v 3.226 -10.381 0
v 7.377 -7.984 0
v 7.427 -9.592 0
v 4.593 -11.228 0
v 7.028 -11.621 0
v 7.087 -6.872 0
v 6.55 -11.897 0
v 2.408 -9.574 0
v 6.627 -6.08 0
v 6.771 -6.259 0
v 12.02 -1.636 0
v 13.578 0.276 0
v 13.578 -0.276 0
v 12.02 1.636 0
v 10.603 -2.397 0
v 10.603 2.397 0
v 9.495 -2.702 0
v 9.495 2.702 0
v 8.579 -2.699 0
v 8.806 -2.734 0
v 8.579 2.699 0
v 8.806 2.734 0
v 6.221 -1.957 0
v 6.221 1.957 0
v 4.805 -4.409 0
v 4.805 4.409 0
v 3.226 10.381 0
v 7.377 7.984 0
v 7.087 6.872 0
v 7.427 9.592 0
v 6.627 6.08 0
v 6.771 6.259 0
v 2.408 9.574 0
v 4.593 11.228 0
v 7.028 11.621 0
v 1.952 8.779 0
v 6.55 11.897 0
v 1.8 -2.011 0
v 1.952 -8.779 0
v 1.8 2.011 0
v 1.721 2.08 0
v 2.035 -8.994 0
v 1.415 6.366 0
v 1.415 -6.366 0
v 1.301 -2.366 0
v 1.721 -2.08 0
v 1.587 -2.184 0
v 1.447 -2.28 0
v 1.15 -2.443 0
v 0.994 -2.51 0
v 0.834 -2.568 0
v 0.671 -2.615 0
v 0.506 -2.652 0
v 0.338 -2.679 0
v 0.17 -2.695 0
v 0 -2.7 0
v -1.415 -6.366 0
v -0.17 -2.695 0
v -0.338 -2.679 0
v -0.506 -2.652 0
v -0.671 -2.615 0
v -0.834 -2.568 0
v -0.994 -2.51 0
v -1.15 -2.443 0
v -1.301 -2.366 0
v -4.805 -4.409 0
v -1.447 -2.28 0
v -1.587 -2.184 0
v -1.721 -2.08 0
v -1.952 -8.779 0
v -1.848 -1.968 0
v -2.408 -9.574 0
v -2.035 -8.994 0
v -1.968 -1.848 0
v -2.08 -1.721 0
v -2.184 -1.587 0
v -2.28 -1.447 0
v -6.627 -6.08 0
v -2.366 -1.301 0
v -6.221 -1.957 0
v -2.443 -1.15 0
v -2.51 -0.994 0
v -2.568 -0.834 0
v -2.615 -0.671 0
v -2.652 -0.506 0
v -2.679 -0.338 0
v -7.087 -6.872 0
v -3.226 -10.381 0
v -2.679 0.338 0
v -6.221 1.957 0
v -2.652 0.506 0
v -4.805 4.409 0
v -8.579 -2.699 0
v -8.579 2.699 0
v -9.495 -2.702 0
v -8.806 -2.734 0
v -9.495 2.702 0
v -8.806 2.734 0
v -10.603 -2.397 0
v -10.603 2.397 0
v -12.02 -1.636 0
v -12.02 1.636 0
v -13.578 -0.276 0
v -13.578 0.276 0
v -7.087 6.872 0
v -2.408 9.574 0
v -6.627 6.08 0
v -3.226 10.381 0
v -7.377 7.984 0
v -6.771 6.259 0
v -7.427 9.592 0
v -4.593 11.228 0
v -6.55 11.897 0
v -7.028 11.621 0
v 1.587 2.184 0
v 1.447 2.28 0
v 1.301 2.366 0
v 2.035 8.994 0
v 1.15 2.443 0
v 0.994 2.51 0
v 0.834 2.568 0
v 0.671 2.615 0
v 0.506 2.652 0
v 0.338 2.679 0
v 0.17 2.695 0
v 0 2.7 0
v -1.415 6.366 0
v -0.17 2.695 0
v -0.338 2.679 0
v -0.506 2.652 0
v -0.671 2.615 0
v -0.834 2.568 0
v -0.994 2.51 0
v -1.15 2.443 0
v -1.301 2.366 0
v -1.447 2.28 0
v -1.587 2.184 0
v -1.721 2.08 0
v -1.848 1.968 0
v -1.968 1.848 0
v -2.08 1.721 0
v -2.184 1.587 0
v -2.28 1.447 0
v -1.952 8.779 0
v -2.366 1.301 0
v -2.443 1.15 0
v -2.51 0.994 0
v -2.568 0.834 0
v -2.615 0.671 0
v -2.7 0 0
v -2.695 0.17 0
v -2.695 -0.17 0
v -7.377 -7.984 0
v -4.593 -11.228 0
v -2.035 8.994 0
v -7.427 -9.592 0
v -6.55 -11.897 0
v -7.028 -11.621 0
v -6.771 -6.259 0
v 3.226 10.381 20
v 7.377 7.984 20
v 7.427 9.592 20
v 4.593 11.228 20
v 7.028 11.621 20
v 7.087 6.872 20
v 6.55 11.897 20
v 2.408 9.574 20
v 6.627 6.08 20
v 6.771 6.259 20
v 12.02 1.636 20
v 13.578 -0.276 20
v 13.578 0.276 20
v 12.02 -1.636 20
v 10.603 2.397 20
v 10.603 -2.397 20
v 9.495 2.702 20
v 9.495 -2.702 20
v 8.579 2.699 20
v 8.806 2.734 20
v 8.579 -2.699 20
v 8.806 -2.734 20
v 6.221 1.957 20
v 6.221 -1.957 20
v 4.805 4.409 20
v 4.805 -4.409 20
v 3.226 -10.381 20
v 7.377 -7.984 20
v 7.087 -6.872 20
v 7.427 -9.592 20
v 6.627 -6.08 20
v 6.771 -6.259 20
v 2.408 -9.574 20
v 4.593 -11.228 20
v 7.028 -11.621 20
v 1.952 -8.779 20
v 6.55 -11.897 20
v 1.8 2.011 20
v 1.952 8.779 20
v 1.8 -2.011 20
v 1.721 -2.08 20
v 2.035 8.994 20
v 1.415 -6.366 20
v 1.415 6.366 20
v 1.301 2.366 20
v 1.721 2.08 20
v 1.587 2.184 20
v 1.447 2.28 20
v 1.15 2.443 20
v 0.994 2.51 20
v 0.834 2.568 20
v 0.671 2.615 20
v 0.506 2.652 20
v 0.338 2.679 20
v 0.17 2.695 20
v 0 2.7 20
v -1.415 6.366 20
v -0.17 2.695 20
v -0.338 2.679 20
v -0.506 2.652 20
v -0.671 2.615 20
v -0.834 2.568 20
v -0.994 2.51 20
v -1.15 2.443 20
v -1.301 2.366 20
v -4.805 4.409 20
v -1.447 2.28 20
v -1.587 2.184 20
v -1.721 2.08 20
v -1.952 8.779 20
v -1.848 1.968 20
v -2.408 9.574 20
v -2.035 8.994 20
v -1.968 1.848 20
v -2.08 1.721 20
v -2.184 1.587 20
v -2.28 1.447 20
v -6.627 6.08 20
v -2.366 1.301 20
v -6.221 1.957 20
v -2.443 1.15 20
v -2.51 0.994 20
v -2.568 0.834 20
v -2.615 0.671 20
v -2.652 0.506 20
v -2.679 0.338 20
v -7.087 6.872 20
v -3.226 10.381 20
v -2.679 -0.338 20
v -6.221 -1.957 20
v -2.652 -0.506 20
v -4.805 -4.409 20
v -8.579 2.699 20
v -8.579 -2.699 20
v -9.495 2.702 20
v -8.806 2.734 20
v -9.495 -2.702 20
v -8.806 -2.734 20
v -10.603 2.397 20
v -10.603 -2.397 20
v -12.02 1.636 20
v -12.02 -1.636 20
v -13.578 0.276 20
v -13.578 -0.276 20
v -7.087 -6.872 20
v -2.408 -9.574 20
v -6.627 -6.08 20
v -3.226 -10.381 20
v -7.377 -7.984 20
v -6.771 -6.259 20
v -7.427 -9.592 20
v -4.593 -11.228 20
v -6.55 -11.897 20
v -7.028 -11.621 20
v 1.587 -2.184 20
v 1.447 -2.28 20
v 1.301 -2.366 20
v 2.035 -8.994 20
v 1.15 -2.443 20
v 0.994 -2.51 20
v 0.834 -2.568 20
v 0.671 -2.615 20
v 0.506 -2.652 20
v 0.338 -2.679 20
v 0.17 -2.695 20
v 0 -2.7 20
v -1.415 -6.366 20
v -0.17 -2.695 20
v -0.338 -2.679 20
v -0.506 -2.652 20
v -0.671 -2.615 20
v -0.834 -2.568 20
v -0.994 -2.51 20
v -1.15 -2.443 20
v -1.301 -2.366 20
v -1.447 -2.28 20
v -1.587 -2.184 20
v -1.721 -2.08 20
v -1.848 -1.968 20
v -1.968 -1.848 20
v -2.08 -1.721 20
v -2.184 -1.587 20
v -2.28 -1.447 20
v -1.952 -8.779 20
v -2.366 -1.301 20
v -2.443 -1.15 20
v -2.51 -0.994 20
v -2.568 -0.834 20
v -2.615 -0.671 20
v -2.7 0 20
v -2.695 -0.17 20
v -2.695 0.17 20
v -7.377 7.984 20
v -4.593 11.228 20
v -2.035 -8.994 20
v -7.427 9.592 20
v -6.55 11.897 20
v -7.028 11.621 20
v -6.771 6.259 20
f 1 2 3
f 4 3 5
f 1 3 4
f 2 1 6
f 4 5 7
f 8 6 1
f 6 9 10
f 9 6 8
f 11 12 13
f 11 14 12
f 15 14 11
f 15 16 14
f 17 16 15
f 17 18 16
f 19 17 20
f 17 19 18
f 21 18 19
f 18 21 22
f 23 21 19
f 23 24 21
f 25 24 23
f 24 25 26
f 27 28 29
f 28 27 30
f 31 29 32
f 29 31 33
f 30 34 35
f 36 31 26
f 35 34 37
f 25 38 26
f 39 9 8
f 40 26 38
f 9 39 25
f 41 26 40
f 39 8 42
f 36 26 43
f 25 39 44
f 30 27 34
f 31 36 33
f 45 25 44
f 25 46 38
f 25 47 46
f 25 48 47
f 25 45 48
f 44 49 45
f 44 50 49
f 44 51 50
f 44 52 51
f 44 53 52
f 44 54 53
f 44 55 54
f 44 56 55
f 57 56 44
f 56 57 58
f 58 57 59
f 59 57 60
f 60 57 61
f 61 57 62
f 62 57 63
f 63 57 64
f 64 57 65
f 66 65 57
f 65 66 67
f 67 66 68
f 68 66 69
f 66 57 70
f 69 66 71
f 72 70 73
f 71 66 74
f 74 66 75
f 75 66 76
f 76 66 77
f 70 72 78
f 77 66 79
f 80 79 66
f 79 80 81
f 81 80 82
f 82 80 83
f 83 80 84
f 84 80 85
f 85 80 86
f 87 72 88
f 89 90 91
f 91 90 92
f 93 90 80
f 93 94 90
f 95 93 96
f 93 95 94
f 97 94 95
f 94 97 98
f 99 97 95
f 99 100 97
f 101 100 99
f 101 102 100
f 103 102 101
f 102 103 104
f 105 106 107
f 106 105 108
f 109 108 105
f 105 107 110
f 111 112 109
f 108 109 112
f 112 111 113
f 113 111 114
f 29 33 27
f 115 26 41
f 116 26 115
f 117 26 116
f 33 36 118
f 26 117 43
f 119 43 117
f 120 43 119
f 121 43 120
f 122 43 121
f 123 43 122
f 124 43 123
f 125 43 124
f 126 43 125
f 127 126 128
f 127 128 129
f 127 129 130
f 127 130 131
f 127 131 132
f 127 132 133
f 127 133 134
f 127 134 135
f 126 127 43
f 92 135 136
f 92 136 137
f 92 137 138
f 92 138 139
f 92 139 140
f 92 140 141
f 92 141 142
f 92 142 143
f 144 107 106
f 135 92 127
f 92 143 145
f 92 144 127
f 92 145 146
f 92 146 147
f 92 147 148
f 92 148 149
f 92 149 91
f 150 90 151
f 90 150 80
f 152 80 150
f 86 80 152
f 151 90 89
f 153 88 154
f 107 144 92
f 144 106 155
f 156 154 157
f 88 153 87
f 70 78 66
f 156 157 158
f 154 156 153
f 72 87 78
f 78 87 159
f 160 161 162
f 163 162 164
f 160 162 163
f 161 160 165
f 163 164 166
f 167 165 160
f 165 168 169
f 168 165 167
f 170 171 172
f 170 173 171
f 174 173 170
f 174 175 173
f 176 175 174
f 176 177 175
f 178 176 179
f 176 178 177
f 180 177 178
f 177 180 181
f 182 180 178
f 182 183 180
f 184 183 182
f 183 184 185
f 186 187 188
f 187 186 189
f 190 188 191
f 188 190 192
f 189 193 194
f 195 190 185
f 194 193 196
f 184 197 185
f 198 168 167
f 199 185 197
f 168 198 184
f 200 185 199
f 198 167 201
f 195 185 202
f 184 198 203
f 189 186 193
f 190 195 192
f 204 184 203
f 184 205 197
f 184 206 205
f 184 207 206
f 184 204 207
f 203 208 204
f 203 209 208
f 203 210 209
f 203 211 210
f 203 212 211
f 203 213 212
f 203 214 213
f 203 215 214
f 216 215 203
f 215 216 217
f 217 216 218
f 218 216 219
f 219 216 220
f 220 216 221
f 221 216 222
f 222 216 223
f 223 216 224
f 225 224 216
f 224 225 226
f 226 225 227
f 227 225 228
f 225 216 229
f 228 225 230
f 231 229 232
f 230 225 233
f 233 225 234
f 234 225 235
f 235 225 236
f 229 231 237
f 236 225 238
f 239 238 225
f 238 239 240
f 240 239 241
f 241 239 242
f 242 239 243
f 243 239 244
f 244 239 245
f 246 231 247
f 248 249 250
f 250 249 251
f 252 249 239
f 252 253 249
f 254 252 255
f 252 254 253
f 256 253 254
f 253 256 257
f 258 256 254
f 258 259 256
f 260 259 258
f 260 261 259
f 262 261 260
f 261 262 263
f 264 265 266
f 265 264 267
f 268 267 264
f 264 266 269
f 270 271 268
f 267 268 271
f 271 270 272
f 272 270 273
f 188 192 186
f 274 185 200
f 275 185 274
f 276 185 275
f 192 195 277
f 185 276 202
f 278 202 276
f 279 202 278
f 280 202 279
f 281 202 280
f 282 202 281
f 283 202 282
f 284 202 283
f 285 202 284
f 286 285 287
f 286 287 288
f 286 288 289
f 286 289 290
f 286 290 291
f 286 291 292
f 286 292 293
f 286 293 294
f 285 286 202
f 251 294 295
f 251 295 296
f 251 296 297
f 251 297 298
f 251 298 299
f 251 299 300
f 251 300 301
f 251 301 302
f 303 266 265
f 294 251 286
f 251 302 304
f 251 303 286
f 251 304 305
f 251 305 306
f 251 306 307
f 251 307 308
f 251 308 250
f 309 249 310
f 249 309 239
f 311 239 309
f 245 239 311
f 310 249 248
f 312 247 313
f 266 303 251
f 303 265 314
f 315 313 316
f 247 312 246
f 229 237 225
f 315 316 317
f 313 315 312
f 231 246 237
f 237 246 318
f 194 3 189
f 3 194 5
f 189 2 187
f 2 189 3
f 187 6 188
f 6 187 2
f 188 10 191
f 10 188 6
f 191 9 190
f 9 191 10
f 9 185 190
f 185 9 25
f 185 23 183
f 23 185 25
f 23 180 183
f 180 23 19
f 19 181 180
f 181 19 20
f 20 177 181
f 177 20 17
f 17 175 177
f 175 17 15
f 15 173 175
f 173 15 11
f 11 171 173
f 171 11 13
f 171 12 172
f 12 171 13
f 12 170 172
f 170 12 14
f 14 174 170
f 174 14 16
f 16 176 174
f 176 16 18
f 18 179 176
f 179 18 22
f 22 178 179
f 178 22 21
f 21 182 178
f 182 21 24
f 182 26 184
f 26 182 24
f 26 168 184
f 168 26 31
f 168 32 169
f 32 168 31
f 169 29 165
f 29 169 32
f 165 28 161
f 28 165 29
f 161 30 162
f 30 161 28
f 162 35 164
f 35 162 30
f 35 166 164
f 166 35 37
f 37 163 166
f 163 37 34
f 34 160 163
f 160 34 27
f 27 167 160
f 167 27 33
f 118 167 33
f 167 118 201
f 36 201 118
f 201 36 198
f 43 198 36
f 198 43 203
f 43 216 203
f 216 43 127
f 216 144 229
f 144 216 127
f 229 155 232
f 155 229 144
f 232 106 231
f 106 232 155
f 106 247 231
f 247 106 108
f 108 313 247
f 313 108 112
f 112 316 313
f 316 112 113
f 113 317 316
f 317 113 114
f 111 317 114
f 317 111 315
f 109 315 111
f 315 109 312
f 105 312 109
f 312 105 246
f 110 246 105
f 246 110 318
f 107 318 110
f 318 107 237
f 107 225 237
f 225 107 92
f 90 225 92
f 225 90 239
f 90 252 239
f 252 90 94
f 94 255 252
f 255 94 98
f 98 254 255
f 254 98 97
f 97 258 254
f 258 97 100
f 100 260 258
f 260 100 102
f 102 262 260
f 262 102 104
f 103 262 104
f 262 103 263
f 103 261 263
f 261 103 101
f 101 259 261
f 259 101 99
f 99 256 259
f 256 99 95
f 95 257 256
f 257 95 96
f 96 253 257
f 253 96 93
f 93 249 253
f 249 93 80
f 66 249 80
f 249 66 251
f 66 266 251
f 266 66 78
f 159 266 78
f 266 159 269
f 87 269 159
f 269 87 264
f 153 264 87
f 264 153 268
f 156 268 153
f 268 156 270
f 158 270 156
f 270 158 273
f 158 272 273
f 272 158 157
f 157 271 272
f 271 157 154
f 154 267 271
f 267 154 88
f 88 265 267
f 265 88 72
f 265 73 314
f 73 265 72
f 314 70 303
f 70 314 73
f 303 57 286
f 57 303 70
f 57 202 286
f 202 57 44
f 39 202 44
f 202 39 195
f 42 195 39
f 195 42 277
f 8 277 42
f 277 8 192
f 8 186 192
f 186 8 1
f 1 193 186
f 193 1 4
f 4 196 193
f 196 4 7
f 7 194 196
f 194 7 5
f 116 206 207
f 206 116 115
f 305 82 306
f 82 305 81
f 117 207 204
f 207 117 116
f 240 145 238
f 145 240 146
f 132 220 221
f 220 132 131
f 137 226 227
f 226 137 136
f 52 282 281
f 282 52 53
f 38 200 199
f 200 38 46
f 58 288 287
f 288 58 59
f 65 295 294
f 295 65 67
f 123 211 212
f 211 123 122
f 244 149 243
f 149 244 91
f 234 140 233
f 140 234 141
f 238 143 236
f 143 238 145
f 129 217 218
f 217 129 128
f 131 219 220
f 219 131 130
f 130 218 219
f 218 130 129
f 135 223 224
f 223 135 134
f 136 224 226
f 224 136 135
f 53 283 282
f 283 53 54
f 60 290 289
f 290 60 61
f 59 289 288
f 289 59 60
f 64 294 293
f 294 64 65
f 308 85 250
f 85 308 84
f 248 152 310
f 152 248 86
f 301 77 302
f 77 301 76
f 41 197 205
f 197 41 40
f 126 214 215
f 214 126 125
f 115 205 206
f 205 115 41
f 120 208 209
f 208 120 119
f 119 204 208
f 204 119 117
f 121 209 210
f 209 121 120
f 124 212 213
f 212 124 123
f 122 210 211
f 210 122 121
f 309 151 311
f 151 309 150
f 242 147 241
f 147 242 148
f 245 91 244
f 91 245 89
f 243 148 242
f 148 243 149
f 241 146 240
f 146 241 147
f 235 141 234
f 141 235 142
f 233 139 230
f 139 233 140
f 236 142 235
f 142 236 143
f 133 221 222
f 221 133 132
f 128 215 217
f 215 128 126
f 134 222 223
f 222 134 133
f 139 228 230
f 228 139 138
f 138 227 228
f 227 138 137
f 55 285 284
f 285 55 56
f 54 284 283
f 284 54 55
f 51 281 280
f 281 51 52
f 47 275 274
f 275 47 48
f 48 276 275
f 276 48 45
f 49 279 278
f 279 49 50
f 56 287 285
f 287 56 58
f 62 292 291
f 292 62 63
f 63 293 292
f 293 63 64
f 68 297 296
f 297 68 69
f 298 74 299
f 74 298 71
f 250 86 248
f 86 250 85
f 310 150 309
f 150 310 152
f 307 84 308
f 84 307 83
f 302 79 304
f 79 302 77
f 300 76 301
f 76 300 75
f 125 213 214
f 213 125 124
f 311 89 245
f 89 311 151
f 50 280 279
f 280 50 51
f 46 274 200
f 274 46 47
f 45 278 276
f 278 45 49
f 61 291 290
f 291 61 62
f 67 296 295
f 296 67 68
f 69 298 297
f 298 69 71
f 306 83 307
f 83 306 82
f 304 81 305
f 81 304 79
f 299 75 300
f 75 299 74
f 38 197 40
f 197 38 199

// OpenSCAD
use <controller.scad>

include <rail.scad>

tol = 0.2;

module shaft() {
    translate([3 - tol, 0, RingThickness/2]) {
        cube([2, 5, RingThickness], center=true);
    };
difference() {gear (circular_pitch=p,
              gear_thickness = RingThickness,
		      rim_thickness = RingThickness,
		      hub_thickness = RingThickness,
		      circles=0,
		      number_of_teeth = DriverNumberOfTeeth,
		      rim_width = 0);  
    cylinder(RingThickness, 5/2 + tol , 5/2 + tol, $fn=fn);
}
}

shaft();
